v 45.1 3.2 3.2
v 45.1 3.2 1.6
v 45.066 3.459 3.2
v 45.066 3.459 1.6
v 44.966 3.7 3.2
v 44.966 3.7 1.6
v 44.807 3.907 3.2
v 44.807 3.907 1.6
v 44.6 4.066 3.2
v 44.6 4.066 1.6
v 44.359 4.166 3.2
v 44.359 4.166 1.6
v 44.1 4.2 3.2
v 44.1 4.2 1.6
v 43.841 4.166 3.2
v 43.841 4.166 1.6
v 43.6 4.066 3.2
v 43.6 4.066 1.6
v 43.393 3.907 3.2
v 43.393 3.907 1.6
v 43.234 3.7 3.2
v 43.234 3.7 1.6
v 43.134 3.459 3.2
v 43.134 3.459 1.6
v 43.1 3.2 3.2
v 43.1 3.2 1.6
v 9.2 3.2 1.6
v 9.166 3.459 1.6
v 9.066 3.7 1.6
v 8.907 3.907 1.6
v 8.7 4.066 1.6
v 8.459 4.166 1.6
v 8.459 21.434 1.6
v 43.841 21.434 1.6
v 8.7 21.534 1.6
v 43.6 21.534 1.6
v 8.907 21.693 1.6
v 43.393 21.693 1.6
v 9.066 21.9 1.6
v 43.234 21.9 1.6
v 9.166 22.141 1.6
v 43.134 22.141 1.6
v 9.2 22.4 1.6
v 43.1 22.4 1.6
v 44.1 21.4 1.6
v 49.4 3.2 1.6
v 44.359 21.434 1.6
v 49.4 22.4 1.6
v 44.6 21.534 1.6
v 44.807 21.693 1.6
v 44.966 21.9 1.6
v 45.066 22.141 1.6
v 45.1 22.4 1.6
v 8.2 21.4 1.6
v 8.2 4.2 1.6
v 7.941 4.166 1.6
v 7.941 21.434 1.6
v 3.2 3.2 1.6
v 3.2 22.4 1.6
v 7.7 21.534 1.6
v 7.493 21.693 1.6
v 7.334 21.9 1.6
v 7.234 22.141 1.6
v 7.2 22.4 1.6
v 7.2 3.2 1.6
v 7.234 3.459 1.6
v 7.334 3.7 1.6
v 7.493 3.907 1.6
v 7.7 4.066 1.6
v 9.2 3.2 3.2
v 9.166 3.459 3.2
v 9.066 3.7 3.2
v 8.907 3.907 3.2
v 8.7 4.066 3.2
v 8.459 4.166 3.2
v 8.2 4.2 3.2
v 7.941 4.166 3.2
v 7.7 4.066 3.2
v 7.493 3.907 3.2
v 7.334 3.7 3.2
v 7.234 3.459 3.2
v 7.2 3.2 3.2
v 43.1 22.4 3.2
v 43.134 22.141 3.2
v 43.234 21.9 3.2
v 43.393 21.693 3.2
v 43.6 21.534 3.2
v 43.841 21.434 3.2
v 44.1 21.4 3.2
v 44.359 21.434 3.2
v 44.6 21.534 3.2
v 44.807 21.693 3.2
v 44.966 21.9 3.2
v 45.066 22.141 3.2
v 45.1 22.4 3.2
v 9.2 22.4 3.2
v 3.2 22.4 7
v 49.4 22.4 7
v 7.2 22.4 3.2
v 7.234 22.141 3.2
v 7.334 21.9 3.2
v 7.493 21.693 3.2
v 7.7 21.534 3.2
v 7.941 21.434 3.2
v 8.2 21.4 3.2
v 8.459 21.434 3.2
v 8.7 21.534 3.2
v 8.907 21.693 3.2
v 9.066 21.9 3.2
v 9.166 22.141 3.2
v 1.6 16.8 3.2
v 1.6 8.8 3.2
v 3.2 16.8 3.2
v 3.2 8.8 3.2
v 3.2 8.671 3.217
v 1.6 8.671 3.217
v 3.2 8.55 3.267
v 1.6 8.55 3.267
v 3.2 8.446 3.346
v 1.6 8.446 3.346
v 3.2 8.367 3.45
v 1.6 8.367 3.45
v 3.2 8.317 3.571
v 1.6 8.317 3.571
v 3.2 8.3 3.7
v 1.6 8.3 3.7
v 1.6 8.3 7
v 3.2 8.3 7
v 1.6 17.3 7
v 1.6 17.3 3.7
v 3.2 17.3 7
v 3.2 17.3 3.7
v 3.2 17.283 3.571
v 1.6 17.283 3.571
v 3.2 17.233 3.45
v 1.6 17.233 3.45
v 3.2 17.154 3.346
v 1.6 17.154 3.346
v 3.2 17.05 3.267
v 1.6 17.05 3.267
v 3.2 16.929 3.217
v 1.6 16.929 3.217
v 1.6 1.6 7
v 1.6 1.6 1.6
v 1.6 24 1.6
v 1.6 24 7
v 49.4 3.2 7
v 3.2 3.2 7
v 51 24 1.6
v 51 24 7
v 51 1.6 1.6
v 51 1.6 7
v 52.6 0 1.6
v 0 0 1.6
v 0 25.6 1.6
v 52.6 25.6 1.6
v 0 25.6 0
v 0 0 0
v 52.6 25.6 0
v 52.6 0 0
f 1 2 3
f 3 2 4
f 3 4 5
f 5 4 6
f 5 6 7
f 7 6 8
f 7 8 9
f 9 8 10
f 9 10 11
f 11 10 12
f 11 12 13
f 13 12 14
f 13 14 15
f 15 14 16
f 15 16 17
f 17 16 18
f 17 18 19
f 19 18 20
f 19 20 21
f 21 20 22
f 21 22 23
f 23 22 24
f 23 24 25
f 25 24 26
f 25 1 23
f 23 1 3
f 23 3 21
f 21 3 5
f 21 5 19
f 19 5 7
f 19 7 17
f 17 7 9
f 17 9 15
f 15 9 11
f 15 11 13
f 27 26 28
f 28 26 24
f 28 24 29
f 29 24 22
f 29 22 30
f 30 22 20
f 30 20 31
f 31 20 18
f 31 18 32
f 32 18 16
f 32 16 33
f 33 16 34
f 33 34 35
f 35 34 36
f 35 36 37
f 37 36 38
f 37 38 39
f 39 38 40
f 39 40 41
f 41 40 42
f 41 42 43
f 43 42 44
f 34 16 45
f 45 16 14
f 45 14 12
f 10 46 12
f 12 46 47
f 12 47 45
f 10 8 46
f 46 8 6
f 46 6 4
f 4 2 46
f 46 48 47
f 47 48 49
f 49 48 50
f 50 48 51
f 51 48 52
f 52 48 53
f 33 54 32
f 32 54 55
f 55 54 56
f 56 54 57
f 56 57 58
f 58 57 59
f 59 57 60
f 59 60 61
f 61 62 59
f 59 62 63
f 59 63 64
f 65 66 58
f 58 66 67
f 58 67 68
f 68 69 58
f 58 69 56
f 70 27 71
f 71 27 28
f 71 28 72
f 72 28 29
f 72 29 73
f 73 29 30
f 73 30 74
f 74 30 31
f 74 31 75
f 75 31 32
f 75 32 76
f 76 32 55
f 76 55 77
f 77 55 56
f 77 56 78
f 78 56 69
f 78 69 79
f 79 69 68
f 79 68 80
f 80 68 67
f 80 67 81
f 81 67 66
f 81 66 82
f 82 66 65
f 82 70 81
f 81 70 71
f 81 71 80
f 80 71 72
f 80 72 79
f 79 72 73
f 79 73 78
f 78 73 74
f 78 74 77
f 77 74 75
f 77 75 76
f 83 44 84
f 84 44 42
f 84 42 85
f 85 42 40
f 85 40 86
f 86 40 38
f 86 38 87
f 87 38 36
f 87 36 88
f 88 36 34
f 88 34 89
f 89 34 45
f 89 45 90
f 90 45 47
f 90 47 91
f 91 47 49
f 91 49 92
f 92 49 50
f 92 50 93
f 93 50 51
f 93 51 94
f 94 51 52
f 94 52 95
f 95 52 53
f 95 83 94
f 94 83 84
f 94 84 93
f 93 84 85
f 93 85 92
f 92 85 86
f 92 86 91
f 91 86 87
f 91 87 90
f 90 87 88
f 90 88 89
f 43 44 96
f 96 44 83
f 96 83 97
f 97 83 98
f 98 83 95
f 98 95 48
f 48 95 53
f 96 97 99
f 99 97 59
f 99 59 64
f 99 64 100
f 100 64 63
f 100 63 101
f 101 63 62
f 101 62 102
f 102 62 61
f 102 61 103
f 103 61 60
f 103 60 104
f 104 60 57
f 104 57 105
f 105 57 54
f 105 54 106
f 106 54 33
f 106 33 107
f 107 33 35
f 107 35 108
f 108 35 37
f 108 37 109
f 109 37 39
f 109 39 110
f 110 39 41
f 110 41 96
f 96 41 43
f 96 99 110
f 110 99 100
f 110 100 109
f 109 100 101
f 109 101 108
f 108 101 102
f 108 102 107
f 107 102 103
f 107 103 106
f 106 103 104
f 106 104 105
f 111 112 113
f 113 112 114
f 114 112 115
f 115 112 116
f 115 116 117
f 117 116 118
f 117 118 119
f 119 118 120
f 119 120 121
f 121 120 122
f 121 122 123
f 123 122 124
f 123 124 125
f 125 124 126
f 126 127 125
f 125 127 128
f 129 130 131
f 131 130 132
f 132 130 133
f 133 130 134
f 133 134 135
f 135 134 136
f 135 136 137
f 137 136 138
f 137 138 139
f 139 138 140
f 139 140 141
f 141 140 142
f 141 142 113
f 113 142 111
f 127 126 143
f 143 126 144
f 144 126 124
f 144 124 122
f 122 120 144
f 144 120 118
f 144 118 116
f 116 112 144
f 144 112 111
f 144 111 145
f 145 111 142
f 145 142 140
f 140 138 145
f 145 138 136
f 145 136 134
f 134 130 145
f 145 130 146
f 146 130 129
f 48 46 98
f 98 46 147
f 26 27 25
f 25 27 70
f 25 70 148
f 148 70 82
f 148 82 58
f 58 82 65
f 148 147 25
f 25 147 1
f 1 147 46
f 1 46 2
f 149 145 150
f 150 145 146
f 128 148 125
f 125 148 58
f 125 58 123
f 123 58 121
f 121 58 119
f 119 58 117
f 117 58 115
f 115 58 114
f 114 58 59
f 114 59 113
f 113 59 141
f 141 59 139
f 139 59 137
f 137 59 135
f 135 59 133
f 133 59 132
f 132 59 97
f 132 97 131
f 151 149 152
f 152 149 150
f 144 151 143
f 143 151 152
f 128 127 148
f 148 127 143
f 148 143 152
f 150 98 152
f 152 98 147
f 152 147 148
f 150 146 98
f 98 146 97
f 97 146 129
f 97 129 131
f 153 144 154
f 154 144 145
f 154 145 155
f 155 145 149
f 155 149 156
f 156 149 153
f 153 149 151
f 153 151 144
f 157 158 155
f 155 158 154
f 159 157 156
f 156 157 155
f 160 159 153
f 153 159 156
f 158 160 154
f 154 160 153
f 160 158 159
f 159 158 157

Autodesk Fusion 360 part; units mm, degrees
sketch "Skizze1" plane through (0, 0, 0) normal (0, 0, 1) x (1, 0, 0)
  line L0 (0, 0) -> (52.6, 0)
  line L1 (52.6, 0) -> (52.6, 25.6)
  line L2 (52.6, 25.6) -> (0, 25.6)
  line L3 (0, 25.6) -> (0, 0)
  line L4 (0, 0) -> (50.8, 0)
  line L5 (3.2, 3.2) -> (49.4, 3.2)
  line L6 (49.4, 3.2) -> (49.4, 22.4)
  line L7 (49.4, 22.4) -> (3.2, 22.4)
  line L8 (3.2, 22.4) -> (3.2, 3.2)
  line L9 (1.6, 24) -> (51, 24)
  line L10 (51, 24) -> (51, 1.6)
  line L11 (51, 1.6) -> (1.6, 1.6)
  line L12 (1.6, 1.6) -> (1.6, 24)
  circle A0 centre (8.2, 22.4) radius 1
  circle A1 centre (44.1, 22.4) radius 1
  circle A2 centre (44.1, 3.2) radius 1
  circle A3 centre (8.2, 3.2) radius 1
  dimension "d2" = 46.2
  dimension "d3" = 19.2
  dimension "d4" = 1.6
  dimension "d6" = 1.6
  dimension "d7" = 1.6
  dimension "d8" = 1.6
  dimension "d13" = 1.6
  dimension "d14" = 1.6
  dimension "d15" = 1.6
  dimension "d16" = 1.6
  dimension "d28" = 2
  dimension "d29" = 2
  dimension "d30" = 2
  dimension "d31" = 2
  dimension "d32" = 5.3
  dimension "d33" = 5.3
  dimension "d34" = 5
  dimension "d35" = 5
extrude "Extrusion1" add sketch "Skizze1" along normal blind 1.6 contours L0 L1 L2 L3 L4 | L5 L6 L7 L8 A0 A1 A2 A3 | L5 A2 | L5 A2 | L5 A3 | L5 A3 | L7 A1 | L7 A1 | L7 A0 | L7 A0 | L9 L10 L11 L12
extrude "Extrusion2" add sketch "Skizze1" along normal blind 7 contours L5 A2 | L5 A3 | L7 A1 | L7 A0 | L9 L10 L11 L12 picked at (44.1779, 2.8253) picked at (7.9246, 2.9129) picked at (44.3078, 22.76) picked at (8.5222, 22.5479)
ref_plane "Arbeitsebene1" through (1.6, 12.8, 4.3) normal (-1, 0, 0) x (0, -1, 0)
sketch "Skizze2" plane through (1.6, 0, 0) normal (-1, 0, 0) x (0, -1, 0)
  line L0 (-17.3, 7) -> (-8.3, 7)
  line L1 (-8.3, 7) -> (-8.3, 3.7)
  line L2 (-8.8, 3.2) -> (-16.8, 3.2)
  line L3 (-17.3, 3.7) -> (-17.3, 7)
  line L4 (-24, 7) -> (-1.6, 7)
  line L5 (-25.6, 1.6) -> (0, 1.6)
  arc A0 (-17.3, 3.7) -> (-16.8, 3.2) centre (-16.8, 3.7) ccw
  arc A1 (-8.8, 3.2) -> (-8.3, 3.7) centre (-8.8, 3.7) ccw
  dimension "d22" = 1.6
  dimension "d23" = 9
  dimension "d24" = 0.5
  dimension "d25" = 0.5
extrude "Extrusion3" cut sketch "Skizze2" against normal blind 1.6
extrude "Extrusion4" add sketch "Skizze1" along normal blind 3.2 contours L5 A2 | L5 A3 | L7 A1 | L7 A0 picked at (44.0258, 3.6243) picked at (8.0222, 3.8816) picked at (44.3444, 22.0739) picked at (7.9673, 21.807)
equation "d19 = 1.6 mm + 4.9 mm + 0.5 mm"
